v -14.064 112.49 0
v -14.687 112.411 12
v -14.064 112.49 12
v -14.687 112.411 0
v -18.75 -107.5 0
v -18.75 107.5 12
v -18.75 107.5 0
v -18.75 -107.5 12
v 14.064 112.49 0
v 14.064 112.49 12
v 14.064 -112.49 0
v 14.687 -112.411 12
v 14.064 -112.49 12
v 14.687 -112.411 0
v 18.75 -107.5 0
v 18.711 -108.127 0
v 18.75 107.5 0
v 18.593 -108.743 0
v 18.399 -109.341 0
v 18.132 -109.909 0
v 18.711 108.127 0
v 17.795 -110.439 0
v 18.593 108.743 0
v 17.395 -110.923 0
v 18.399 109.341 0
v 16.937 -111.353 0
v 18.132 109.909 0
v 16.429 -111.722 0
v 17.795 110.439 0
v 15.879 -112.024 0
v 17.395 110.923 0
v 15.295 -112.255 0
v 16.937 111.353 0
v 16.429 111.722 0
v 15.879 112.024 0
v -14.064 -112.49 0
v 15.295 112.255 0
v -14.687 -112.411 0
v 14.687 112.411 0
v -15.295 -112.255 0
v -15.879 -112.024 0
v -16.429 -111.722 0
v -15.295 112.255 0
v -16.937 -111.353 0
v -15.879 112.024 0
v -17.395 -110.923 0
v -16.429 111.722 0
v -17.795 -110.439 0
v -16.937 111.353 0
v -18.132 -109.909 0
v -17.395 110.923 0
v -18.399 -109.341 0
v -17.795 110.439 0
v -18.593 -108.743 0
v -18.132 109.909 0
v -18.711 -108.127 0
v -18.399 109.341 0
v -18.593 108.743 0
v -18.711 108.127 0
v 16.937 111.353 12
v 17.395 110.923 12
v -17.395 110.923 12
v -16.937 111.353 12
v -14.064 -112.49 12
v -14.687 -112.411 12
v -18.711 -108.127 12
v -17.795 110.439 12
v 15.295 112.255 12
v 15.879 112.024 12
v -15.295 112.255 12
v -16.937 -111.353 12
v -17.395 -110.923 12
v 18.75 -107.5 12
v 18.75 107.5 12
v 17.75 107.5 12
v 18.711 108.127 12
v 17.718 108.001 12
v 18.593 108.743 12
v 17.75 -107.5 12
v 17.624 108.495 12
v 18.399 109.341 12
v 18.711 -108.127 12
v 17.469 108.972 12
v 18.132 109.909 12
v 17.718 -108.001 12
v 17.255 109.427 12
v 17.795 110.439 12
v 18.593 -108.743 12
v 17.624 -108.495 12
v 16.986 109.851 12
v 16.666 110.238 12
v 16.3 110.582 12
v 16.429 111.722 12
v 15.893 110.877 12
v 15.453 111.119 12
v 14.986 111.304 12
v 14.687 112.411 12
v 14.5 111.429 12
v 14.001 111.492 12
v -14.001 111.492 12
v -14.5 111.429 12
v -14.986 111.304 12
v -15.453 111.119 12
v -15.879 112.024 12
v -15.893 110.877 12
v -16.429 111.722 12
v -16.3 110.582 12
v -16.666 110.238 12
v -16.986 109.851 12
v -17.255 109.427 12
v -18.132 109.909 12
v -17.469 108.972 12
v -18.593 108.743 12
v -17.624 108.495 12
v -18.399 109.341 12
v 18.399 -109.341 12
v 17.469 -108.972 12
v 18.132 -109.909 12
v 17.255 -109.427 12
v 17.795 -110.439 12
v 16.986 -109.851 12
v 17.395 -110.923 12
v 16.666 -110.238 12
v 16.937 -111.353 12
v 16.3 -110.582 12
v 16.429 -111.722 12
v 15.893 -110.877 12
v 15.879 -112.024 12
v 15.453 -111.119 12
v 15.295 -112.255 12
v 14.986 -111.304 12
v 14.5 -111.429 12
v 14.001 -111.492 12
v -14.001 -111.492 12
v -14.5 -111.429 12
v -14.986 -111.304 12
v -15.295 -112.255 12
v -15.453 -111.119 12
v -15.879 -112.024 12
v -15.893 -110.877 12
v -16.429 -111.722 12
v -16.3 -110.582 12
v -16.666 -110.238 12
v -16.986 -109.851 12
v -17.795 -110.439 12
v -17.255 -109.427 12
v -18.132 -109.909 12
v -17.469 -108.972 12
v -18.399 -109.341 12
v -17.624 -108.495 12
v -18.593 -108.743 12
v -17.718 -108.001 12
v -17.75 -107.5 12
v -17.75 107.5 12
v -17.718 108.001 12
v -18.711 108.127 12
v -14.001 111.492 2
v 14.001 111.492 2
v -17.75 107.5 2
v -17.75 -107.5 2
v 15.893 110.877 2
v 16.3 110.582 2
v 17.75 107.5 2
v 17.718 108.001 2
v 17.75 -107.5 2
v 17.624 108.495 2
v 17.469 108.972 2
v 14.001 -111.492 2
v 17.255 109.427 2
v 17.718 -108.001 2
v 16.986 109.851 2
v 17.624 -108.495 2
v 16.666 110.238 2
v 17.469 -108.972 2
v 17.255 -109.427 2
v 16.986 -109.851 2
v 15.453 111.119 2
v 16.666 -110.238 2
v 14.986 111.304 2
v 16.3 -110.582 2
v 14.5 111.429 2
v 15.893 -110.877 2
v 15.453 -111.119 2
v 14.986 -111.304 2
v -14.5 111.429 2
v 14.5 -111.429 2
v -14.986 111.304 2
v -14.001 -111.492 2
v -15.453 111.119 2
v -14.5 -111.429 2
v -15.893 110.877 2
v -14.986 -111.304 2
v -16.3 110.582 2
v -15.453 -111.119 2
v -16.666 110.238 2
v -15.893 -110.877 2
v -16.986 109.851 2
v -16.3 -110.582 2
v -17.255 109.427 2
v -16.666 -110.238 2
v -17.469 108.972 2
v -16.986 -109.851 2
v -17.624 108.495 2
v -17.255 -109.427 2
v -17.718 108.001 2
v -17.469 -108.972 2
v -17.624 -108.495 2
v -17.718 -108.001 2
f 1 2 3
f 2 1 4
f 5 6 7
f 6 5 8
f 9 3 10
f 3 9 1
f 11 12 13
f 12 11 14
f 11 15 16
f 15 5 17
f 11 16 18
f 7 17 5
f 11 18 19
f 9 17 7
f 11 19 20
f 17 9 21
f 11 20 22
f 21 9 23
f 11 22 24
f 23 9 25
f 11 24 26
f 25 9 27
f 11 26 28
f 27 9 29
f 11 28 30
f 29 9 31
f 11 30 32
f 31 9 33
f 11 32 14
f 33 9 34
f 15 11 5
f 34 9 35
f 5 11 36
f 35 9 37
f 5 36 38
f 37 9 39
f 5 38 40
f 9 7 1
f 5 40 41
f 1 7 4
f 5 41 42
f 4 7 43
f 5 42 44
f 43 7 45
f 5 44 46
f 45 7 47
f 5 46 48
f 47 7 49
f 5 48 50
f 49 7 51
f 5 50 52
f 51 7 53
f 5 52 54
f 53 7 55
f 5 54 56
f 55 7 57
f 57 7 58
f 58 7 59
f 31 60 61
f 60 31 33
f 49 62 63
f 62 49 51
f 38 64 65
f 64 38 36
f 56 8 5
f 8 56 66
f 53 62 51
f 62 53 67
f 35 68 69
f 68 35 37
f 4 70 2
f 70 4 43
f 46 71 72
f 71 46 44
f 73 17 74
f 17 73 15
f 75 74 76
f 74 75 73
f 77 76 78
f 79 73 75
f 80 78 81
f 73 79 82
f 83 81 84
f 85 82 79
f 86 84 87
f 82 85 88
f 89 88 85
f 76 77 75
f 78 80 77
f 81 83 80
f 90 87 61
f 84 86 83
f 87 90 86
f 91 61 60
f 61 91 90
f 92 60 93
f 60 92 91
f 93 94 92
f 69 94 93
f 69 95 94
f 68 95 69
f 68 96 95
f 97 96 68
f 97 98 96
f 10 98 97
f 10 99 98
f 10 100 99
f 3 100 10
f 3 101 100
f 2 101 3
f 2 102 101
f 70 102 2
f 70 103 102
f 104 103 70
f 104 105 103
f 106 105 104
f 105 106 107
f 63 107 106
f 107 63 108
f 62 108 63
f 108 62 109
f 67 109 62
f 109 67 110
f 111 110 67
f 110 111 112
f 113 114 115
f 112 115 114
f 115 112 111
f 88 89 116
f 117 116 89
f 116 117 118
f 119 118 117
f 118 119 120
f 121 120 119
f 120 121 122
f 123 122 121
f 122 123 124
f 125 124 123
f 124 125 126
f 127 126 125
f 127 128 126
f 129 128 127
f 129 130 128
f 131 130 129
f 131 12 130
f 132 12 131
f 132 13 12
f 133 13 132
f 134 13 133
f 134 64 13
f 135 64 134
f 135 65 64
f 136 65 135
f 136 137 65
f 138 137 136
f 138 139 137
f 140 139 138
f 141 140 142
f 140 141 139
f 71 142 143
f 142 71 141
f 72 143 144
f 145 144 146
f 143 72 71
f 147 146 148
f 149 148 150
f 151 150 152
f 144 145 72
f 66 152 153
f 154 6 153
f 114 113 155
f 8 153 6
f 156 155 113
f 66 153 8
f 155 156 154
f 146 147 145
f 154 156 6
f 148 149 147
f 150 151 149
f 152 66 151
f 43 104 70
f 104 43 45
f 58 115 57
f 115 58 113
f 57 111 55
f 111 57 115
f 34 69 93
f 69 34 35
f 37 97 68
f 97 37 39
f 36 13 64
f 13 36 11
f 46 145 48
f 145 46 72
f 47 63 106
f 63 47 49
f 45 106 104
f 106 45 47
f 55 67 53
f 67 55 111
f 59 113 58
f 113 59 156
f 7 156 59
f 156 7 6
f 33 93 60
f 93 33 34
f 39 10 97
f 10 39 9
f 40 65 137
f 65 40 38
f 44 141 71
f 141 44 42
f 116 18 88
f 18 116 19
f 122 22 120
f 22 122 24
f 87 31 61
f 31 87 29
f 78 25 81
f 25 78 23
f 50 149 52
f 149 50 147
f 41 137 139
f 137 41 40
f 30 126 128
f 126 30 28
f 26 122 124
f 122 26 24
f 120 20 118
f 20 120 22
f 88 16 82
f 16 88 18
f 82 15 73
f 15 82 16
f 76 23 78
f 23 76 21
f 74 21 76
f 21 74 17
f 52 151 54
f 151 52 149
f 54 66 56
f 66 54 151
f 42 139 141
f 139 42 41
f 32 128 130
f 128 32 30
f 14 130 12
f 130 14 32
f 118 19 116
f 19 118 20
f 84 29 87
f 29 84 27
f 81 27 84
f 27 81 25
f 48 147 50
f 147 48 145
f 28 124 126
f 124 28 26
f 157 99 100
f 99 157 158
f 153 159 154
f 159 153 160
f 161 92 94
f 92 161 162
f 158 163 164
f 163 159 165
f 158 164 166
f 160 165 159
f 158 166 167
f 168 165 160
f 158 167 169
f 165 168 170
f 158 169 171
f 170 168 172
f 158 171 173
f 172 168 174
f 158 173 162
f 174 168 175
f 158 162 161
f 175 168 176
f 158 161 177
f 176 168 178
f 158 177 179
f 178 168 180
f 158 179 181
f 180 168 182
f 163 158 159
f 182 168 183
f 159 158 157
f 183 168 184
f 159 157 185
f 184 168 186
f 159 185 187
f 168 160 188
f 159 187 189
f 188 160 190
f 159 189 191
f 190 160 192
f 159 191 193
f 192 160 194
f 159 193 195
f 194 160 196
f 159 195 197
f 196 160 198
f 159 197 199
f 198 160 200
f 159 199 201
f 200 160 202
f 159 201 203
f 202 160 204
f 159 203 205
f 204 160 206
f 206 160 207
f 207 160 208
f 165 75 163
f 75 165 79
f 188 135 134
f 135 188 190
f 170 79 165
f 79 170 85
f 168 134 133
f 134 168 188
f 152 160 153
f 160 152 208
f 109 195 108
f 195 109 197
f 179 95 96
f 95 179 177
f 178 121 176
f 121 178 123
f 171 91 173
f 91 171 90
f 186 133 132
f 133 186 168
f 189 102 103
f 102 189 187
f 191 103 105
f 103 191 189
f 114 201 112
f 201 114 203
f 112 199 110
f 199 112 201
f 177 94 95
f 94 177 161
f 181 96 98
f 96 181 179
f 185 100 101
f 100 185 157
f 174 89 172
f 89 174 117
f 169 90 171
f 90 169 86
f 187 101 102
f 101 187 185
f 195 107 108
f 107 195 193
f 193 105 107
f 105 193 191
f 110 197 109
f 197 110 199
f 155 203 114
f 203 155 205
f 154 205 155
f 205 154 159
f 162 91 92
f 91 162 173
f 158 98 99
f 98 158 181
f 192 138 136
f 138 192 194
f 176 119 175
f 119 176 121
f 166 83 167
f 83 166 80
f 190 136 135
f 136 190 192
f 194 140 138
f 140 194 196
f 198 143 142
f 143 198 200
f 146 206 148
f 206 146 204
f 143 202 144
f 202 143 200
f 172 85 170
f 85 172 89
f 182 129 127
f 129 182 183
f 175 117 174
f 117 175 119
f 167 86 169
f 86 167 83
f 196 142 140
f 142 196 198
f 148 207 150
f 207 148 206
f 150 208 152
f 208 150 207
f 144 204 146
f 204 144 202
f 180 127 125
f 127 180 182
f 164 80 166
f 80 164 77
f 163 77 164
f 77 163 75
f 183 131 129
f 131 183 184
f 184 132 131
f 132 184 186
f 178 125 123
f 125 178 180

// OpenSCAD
$fn = 50;


difference() {
	union() {
		hull() {
			translate(v = [-13.7500000000, 107.5000000000, 0]) {
				cylinder(h = 12, r = 5);
			}
			translate(v = [13.7500000000, 107.5000000000, 0]) {
				cylinder(h = 12, r = 5);
			}
			translate(v = [-13.7500000000, -107.5000000000, 0]) {
				cylinder(h = 12, r = 5);
			}
			translate(v = [13.7500000000, -107.5000000000, 0]) {
				cylinder(h = 12, r = 5);
			}
		}
	}
	union() {
		translate(v = [0, 0, 2]) {
			hull() {
				translate(v = [-13.7500000000, 107.5000000000, 0]) {
					cylinder(h = 10, r = 4);
				}
				translate(v = [13.7500000000, 107.5000000000, 0]) {
					cylinder(h = 10, r = 4);
				}
				translate(v = [-13.7500000000, -107.5000000000, 0]) {
					cylinder(h = 10, r = 4);
				}
				translate(v = [13.7500000000, -107.5000000000, 0]) {
					cylinder(h = 10, r = 4);
				}
			}
		}
	}
}
